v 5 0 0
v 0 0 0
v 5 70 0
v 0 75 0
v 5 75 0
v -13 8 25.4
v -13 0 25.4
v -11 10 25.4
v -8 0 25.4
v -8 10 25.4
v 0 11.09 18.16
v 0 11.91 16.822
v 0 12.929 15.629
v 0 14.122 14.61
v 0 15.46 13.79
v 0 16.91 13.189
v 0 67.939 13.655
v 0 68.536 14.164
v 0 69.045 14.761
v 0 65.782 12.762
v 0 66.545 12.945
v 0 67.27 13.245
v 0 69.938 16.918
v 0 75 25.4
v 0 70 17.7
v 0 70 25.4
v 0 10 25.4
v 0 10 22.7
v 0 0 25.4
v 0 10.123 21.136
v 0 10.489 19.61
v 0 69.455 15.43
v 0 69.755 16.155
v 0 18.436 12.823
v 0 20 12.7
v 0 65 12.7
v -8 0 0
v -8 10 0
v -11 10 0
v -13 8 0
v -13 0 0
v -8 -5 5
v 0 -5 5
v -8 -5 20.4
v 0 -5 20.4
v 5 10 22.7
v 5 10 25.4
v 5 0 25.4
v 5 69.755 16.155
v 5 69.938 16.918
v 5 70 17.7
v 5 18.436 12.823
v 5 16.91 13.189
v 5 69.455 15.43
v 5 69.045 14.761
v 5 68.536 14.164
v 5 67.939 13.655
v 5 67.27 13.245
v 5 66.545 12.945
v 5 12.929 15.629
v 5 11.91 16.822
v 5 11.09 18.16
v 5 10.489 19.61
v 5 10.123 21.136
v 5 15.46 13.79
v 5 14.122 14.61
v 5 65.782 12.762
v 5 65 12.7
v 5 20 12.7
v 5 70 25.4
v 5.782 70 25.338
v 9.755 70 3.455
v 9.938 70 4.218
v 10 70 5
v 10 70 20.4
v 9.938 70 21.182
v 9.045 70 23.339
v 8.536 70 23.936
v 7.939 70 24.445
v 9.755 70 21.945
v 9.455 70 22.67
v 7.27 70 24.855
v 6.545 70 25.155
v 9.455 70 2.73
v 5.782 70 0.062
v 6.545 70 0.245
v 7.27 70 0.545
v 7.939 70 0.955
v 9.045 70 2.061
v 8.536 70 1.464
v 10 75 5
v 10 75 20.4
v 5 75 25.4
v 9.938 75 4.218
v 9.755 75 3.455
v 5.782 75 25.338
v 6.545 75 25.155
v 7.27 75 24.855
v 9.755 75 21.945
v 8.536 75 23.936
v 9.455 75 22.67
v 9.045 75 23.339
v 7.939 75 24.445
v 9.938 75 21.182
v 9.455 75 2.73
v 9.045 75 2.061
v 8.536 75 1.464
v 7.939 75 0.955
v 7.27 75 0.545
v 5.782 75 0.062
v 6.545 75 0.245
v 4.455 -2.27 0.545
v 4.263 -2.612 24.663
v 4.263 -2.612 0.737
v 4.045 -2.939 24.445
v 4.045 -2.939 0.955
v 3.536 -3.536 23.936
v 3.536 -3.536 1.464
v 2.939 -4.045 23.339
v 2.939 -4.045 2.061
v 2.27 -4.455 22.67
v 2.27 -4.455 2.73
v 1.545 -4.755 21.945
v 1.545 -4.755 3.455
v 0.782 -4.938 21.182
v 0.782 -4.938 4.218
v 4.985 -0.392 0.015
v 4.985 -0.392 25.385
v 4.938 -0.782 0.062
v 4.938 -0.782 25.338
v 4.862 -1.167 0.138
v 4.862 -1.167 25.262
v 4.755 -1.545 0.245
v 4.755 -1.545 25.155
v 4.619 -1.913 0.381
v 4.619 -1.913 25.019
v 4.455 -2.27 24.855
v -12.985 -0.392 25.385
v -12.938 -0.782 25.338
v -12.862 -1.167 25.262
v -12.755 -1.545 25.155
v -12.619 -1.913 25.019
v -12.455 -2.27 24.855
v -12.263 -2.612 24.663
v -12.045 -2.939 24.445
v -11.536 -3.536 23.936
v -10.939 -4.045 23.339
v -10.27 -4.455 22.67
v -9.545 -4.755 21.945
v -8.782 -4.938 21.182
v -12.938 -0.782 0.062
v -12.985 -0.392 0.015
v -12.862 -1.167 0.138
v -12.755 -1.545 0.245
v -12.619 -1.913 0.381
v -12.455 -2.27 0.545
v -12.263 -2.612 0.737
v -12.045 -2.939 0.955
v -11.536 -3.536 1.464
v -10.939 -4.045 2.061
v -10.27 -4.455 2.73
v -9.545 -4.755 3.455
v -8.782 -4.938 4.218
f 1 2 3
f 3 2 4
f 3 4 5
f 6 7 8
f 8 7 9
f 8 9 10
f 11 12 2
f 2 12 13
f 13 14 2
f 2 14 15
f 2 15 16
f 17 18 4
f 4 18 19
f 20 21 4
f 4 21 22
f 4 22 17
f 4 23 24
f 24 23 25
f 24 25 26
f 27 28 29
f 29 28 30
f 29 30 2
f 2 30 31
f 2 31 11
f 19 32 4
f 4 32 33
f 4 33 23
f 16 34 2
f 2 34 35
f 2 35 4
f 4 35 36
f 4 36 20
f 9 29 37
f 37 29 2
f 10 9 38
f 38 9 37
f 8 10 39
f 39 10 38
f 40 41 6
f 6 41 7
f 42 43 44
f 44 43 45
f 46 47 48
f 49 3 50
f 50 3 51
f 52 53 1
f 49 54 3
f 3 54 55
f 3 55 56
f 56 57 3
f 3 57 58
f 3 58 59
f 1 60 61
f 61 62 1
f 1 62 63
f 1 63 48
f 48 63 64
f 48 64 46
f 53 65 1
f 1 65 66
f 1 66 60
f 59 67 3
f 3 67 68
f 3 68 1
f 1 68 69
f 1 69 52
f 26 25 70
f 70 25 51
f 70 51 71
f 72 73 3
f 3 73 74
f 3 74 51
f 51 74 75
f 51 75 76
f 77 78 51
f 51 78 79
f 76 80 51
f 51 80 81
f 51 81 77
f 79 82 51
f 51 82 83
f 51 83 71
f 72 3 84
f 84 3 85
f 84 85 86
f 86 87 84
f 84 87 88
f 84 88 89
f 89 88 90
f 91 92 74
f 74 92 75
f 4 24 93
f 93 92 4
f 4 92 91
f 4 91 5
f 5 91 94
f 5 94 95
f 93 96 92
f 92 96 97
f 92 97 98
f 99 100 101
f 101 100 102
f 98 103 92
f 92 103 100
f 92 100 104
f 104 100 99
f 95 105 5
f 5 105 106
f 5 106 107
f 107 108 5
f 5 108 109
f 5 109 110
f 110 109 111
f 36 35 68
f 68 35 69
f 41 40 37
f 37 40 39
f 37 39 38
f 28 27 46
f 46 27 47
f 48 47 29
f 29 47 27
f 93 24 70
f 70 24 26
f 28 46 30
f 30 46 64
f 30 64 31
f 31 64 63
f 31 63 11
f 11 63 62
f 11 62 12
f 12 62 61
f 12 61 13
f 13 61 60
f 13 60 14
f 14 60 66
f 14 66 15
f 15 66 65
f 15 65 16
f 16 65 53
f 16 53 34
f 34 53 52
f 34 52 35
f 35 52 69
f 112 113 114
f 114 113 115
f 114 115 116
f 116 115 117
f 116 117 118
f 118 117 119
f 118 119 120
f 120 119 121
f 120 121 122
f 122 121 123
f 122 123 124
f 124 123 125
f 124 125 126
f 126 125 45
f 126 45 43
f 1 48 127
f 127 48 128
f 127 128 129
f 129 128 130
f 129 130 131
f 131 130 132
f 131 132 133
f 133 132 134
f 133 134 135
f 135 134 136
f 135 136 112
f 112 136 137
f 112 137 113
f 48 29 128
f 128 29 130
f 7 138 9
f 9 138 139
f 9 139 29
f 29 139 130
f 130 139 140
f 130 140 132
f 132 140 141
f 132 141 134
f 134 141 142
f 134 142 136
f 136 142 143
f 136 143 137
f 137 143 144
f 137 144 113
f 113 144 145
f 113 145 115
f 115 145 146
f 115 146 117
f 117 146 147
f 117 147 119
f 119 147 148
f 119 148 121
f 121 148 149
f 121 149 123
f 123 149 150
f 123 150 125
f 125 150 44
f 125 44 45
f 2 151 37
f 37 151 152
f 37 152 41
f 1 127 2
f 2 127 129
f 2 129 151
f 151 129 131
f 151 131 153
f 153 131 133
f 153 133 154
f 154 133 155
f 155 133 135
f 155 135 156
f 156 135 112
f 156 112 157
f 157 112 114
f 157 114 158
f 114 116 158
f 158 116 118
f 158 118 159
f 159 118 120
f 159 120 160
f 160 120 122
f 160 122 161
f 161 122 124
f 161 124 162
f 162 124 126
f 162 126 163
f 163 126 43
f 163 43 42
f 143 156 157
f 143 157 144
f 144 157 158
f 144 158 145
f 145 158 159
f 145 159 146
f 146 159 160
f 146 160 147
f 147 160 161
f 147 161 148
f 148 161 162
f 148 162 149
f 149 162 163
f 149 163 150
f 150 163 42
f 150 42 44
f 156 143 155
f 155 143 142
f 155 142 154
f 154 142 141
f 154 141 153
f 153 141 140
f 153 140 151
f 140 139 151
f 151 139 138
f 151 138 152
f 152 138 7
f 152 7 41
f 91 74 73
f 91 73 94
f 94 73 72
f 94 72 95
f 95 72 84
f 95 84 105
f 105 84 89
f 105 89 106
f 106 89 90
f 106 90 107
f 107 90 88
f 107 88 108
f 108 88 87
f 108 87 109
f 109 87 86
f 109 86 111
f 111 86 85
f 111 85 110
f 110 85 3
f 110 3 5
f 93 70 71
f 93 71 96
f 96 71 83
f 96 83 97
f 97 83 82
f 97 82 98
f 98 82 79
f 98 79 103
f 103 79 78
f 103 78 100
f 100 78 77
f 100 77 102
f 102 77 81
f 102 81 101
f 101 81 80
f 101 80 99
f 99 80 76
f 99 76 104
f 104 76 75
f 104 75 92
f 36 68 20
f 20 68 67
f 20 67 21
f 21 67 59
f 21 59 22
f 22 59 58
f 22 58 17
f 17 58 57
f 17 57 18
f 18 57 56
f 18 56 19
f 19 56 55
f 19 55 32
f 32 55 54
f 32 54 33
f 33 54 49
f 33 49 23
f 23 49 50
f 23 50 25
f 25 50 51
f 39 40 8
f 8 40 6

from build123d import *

# Parameters (mm, degrees)
BOSS_EXTRUDE1_DEPTH = 12.7
BOSS_EXTRUDE2_DEPTH = 12.7
FILLET1_R           = 10
FILLET2_R           = 5
CHAMFER2_SIZE       = 2


with BuildPart() as part:
    # Sketch1 → Boss-Extrude1 (new body)
    with BuildSketch(Plane.XY):
        Polygon((0, 0), (-8, 0), (-8, 10), (-13, 10), (-13, -5), (5, -5), (5, 70), (10, 70), (10, 75), (0, 75), align=None)
    extrude(amount=BOSS_EXTRUDE1_DEPTH)

    # Sketch2 → Boss-Extrude2 (add)
    with BuildSketch(Plane.XY.offset(12.7)):
        Polygon((5, 10), (0, 10), (0, 0), (-8, 0), (-8, 10), (-13, 10), (-13, -5), (5, -5), align=None)
        Polygon((0, 75), (0, 70), (5, 70), (10, 70), (10, 75), align=None)
    extrude(amount=BOSS_EXTRUDE2_DEPTH)

    # Fillet1
    fillet1_edges = [part.edges().sort_by_distance(p)[0] for p in [
        (2.5, 10, 12.7),
    ]]
    fillet(fillet1_edges, radius=FILLET1_R)

    # Fillet2
    fillet2_edges = [part.edges().sort_by_distance(p)[0] for p in [
        (-13, -5, 12.7),
        (-4, -5, 25.4),
        (5, -5, 12.7),
        (-4, -5, 0),
        (10, 72.5, 0),
        (10, 72.5, 25.4),
        (2.5, 70, 12.7),
    ]]
    fillet(fillet2_edges, radius=FILLET2_R - 0.0001)  # a hair under: the kernel refuses the full size

    # Chamfer2
    chamfer2_edges = [part.edges().sort_by_distance(p)[0] for p in [
        (-13, 10, 12.7),
    ]]
    chamfer(chamfer2_edges, length=CHAMFER2_SIZE)


solid = part.part
